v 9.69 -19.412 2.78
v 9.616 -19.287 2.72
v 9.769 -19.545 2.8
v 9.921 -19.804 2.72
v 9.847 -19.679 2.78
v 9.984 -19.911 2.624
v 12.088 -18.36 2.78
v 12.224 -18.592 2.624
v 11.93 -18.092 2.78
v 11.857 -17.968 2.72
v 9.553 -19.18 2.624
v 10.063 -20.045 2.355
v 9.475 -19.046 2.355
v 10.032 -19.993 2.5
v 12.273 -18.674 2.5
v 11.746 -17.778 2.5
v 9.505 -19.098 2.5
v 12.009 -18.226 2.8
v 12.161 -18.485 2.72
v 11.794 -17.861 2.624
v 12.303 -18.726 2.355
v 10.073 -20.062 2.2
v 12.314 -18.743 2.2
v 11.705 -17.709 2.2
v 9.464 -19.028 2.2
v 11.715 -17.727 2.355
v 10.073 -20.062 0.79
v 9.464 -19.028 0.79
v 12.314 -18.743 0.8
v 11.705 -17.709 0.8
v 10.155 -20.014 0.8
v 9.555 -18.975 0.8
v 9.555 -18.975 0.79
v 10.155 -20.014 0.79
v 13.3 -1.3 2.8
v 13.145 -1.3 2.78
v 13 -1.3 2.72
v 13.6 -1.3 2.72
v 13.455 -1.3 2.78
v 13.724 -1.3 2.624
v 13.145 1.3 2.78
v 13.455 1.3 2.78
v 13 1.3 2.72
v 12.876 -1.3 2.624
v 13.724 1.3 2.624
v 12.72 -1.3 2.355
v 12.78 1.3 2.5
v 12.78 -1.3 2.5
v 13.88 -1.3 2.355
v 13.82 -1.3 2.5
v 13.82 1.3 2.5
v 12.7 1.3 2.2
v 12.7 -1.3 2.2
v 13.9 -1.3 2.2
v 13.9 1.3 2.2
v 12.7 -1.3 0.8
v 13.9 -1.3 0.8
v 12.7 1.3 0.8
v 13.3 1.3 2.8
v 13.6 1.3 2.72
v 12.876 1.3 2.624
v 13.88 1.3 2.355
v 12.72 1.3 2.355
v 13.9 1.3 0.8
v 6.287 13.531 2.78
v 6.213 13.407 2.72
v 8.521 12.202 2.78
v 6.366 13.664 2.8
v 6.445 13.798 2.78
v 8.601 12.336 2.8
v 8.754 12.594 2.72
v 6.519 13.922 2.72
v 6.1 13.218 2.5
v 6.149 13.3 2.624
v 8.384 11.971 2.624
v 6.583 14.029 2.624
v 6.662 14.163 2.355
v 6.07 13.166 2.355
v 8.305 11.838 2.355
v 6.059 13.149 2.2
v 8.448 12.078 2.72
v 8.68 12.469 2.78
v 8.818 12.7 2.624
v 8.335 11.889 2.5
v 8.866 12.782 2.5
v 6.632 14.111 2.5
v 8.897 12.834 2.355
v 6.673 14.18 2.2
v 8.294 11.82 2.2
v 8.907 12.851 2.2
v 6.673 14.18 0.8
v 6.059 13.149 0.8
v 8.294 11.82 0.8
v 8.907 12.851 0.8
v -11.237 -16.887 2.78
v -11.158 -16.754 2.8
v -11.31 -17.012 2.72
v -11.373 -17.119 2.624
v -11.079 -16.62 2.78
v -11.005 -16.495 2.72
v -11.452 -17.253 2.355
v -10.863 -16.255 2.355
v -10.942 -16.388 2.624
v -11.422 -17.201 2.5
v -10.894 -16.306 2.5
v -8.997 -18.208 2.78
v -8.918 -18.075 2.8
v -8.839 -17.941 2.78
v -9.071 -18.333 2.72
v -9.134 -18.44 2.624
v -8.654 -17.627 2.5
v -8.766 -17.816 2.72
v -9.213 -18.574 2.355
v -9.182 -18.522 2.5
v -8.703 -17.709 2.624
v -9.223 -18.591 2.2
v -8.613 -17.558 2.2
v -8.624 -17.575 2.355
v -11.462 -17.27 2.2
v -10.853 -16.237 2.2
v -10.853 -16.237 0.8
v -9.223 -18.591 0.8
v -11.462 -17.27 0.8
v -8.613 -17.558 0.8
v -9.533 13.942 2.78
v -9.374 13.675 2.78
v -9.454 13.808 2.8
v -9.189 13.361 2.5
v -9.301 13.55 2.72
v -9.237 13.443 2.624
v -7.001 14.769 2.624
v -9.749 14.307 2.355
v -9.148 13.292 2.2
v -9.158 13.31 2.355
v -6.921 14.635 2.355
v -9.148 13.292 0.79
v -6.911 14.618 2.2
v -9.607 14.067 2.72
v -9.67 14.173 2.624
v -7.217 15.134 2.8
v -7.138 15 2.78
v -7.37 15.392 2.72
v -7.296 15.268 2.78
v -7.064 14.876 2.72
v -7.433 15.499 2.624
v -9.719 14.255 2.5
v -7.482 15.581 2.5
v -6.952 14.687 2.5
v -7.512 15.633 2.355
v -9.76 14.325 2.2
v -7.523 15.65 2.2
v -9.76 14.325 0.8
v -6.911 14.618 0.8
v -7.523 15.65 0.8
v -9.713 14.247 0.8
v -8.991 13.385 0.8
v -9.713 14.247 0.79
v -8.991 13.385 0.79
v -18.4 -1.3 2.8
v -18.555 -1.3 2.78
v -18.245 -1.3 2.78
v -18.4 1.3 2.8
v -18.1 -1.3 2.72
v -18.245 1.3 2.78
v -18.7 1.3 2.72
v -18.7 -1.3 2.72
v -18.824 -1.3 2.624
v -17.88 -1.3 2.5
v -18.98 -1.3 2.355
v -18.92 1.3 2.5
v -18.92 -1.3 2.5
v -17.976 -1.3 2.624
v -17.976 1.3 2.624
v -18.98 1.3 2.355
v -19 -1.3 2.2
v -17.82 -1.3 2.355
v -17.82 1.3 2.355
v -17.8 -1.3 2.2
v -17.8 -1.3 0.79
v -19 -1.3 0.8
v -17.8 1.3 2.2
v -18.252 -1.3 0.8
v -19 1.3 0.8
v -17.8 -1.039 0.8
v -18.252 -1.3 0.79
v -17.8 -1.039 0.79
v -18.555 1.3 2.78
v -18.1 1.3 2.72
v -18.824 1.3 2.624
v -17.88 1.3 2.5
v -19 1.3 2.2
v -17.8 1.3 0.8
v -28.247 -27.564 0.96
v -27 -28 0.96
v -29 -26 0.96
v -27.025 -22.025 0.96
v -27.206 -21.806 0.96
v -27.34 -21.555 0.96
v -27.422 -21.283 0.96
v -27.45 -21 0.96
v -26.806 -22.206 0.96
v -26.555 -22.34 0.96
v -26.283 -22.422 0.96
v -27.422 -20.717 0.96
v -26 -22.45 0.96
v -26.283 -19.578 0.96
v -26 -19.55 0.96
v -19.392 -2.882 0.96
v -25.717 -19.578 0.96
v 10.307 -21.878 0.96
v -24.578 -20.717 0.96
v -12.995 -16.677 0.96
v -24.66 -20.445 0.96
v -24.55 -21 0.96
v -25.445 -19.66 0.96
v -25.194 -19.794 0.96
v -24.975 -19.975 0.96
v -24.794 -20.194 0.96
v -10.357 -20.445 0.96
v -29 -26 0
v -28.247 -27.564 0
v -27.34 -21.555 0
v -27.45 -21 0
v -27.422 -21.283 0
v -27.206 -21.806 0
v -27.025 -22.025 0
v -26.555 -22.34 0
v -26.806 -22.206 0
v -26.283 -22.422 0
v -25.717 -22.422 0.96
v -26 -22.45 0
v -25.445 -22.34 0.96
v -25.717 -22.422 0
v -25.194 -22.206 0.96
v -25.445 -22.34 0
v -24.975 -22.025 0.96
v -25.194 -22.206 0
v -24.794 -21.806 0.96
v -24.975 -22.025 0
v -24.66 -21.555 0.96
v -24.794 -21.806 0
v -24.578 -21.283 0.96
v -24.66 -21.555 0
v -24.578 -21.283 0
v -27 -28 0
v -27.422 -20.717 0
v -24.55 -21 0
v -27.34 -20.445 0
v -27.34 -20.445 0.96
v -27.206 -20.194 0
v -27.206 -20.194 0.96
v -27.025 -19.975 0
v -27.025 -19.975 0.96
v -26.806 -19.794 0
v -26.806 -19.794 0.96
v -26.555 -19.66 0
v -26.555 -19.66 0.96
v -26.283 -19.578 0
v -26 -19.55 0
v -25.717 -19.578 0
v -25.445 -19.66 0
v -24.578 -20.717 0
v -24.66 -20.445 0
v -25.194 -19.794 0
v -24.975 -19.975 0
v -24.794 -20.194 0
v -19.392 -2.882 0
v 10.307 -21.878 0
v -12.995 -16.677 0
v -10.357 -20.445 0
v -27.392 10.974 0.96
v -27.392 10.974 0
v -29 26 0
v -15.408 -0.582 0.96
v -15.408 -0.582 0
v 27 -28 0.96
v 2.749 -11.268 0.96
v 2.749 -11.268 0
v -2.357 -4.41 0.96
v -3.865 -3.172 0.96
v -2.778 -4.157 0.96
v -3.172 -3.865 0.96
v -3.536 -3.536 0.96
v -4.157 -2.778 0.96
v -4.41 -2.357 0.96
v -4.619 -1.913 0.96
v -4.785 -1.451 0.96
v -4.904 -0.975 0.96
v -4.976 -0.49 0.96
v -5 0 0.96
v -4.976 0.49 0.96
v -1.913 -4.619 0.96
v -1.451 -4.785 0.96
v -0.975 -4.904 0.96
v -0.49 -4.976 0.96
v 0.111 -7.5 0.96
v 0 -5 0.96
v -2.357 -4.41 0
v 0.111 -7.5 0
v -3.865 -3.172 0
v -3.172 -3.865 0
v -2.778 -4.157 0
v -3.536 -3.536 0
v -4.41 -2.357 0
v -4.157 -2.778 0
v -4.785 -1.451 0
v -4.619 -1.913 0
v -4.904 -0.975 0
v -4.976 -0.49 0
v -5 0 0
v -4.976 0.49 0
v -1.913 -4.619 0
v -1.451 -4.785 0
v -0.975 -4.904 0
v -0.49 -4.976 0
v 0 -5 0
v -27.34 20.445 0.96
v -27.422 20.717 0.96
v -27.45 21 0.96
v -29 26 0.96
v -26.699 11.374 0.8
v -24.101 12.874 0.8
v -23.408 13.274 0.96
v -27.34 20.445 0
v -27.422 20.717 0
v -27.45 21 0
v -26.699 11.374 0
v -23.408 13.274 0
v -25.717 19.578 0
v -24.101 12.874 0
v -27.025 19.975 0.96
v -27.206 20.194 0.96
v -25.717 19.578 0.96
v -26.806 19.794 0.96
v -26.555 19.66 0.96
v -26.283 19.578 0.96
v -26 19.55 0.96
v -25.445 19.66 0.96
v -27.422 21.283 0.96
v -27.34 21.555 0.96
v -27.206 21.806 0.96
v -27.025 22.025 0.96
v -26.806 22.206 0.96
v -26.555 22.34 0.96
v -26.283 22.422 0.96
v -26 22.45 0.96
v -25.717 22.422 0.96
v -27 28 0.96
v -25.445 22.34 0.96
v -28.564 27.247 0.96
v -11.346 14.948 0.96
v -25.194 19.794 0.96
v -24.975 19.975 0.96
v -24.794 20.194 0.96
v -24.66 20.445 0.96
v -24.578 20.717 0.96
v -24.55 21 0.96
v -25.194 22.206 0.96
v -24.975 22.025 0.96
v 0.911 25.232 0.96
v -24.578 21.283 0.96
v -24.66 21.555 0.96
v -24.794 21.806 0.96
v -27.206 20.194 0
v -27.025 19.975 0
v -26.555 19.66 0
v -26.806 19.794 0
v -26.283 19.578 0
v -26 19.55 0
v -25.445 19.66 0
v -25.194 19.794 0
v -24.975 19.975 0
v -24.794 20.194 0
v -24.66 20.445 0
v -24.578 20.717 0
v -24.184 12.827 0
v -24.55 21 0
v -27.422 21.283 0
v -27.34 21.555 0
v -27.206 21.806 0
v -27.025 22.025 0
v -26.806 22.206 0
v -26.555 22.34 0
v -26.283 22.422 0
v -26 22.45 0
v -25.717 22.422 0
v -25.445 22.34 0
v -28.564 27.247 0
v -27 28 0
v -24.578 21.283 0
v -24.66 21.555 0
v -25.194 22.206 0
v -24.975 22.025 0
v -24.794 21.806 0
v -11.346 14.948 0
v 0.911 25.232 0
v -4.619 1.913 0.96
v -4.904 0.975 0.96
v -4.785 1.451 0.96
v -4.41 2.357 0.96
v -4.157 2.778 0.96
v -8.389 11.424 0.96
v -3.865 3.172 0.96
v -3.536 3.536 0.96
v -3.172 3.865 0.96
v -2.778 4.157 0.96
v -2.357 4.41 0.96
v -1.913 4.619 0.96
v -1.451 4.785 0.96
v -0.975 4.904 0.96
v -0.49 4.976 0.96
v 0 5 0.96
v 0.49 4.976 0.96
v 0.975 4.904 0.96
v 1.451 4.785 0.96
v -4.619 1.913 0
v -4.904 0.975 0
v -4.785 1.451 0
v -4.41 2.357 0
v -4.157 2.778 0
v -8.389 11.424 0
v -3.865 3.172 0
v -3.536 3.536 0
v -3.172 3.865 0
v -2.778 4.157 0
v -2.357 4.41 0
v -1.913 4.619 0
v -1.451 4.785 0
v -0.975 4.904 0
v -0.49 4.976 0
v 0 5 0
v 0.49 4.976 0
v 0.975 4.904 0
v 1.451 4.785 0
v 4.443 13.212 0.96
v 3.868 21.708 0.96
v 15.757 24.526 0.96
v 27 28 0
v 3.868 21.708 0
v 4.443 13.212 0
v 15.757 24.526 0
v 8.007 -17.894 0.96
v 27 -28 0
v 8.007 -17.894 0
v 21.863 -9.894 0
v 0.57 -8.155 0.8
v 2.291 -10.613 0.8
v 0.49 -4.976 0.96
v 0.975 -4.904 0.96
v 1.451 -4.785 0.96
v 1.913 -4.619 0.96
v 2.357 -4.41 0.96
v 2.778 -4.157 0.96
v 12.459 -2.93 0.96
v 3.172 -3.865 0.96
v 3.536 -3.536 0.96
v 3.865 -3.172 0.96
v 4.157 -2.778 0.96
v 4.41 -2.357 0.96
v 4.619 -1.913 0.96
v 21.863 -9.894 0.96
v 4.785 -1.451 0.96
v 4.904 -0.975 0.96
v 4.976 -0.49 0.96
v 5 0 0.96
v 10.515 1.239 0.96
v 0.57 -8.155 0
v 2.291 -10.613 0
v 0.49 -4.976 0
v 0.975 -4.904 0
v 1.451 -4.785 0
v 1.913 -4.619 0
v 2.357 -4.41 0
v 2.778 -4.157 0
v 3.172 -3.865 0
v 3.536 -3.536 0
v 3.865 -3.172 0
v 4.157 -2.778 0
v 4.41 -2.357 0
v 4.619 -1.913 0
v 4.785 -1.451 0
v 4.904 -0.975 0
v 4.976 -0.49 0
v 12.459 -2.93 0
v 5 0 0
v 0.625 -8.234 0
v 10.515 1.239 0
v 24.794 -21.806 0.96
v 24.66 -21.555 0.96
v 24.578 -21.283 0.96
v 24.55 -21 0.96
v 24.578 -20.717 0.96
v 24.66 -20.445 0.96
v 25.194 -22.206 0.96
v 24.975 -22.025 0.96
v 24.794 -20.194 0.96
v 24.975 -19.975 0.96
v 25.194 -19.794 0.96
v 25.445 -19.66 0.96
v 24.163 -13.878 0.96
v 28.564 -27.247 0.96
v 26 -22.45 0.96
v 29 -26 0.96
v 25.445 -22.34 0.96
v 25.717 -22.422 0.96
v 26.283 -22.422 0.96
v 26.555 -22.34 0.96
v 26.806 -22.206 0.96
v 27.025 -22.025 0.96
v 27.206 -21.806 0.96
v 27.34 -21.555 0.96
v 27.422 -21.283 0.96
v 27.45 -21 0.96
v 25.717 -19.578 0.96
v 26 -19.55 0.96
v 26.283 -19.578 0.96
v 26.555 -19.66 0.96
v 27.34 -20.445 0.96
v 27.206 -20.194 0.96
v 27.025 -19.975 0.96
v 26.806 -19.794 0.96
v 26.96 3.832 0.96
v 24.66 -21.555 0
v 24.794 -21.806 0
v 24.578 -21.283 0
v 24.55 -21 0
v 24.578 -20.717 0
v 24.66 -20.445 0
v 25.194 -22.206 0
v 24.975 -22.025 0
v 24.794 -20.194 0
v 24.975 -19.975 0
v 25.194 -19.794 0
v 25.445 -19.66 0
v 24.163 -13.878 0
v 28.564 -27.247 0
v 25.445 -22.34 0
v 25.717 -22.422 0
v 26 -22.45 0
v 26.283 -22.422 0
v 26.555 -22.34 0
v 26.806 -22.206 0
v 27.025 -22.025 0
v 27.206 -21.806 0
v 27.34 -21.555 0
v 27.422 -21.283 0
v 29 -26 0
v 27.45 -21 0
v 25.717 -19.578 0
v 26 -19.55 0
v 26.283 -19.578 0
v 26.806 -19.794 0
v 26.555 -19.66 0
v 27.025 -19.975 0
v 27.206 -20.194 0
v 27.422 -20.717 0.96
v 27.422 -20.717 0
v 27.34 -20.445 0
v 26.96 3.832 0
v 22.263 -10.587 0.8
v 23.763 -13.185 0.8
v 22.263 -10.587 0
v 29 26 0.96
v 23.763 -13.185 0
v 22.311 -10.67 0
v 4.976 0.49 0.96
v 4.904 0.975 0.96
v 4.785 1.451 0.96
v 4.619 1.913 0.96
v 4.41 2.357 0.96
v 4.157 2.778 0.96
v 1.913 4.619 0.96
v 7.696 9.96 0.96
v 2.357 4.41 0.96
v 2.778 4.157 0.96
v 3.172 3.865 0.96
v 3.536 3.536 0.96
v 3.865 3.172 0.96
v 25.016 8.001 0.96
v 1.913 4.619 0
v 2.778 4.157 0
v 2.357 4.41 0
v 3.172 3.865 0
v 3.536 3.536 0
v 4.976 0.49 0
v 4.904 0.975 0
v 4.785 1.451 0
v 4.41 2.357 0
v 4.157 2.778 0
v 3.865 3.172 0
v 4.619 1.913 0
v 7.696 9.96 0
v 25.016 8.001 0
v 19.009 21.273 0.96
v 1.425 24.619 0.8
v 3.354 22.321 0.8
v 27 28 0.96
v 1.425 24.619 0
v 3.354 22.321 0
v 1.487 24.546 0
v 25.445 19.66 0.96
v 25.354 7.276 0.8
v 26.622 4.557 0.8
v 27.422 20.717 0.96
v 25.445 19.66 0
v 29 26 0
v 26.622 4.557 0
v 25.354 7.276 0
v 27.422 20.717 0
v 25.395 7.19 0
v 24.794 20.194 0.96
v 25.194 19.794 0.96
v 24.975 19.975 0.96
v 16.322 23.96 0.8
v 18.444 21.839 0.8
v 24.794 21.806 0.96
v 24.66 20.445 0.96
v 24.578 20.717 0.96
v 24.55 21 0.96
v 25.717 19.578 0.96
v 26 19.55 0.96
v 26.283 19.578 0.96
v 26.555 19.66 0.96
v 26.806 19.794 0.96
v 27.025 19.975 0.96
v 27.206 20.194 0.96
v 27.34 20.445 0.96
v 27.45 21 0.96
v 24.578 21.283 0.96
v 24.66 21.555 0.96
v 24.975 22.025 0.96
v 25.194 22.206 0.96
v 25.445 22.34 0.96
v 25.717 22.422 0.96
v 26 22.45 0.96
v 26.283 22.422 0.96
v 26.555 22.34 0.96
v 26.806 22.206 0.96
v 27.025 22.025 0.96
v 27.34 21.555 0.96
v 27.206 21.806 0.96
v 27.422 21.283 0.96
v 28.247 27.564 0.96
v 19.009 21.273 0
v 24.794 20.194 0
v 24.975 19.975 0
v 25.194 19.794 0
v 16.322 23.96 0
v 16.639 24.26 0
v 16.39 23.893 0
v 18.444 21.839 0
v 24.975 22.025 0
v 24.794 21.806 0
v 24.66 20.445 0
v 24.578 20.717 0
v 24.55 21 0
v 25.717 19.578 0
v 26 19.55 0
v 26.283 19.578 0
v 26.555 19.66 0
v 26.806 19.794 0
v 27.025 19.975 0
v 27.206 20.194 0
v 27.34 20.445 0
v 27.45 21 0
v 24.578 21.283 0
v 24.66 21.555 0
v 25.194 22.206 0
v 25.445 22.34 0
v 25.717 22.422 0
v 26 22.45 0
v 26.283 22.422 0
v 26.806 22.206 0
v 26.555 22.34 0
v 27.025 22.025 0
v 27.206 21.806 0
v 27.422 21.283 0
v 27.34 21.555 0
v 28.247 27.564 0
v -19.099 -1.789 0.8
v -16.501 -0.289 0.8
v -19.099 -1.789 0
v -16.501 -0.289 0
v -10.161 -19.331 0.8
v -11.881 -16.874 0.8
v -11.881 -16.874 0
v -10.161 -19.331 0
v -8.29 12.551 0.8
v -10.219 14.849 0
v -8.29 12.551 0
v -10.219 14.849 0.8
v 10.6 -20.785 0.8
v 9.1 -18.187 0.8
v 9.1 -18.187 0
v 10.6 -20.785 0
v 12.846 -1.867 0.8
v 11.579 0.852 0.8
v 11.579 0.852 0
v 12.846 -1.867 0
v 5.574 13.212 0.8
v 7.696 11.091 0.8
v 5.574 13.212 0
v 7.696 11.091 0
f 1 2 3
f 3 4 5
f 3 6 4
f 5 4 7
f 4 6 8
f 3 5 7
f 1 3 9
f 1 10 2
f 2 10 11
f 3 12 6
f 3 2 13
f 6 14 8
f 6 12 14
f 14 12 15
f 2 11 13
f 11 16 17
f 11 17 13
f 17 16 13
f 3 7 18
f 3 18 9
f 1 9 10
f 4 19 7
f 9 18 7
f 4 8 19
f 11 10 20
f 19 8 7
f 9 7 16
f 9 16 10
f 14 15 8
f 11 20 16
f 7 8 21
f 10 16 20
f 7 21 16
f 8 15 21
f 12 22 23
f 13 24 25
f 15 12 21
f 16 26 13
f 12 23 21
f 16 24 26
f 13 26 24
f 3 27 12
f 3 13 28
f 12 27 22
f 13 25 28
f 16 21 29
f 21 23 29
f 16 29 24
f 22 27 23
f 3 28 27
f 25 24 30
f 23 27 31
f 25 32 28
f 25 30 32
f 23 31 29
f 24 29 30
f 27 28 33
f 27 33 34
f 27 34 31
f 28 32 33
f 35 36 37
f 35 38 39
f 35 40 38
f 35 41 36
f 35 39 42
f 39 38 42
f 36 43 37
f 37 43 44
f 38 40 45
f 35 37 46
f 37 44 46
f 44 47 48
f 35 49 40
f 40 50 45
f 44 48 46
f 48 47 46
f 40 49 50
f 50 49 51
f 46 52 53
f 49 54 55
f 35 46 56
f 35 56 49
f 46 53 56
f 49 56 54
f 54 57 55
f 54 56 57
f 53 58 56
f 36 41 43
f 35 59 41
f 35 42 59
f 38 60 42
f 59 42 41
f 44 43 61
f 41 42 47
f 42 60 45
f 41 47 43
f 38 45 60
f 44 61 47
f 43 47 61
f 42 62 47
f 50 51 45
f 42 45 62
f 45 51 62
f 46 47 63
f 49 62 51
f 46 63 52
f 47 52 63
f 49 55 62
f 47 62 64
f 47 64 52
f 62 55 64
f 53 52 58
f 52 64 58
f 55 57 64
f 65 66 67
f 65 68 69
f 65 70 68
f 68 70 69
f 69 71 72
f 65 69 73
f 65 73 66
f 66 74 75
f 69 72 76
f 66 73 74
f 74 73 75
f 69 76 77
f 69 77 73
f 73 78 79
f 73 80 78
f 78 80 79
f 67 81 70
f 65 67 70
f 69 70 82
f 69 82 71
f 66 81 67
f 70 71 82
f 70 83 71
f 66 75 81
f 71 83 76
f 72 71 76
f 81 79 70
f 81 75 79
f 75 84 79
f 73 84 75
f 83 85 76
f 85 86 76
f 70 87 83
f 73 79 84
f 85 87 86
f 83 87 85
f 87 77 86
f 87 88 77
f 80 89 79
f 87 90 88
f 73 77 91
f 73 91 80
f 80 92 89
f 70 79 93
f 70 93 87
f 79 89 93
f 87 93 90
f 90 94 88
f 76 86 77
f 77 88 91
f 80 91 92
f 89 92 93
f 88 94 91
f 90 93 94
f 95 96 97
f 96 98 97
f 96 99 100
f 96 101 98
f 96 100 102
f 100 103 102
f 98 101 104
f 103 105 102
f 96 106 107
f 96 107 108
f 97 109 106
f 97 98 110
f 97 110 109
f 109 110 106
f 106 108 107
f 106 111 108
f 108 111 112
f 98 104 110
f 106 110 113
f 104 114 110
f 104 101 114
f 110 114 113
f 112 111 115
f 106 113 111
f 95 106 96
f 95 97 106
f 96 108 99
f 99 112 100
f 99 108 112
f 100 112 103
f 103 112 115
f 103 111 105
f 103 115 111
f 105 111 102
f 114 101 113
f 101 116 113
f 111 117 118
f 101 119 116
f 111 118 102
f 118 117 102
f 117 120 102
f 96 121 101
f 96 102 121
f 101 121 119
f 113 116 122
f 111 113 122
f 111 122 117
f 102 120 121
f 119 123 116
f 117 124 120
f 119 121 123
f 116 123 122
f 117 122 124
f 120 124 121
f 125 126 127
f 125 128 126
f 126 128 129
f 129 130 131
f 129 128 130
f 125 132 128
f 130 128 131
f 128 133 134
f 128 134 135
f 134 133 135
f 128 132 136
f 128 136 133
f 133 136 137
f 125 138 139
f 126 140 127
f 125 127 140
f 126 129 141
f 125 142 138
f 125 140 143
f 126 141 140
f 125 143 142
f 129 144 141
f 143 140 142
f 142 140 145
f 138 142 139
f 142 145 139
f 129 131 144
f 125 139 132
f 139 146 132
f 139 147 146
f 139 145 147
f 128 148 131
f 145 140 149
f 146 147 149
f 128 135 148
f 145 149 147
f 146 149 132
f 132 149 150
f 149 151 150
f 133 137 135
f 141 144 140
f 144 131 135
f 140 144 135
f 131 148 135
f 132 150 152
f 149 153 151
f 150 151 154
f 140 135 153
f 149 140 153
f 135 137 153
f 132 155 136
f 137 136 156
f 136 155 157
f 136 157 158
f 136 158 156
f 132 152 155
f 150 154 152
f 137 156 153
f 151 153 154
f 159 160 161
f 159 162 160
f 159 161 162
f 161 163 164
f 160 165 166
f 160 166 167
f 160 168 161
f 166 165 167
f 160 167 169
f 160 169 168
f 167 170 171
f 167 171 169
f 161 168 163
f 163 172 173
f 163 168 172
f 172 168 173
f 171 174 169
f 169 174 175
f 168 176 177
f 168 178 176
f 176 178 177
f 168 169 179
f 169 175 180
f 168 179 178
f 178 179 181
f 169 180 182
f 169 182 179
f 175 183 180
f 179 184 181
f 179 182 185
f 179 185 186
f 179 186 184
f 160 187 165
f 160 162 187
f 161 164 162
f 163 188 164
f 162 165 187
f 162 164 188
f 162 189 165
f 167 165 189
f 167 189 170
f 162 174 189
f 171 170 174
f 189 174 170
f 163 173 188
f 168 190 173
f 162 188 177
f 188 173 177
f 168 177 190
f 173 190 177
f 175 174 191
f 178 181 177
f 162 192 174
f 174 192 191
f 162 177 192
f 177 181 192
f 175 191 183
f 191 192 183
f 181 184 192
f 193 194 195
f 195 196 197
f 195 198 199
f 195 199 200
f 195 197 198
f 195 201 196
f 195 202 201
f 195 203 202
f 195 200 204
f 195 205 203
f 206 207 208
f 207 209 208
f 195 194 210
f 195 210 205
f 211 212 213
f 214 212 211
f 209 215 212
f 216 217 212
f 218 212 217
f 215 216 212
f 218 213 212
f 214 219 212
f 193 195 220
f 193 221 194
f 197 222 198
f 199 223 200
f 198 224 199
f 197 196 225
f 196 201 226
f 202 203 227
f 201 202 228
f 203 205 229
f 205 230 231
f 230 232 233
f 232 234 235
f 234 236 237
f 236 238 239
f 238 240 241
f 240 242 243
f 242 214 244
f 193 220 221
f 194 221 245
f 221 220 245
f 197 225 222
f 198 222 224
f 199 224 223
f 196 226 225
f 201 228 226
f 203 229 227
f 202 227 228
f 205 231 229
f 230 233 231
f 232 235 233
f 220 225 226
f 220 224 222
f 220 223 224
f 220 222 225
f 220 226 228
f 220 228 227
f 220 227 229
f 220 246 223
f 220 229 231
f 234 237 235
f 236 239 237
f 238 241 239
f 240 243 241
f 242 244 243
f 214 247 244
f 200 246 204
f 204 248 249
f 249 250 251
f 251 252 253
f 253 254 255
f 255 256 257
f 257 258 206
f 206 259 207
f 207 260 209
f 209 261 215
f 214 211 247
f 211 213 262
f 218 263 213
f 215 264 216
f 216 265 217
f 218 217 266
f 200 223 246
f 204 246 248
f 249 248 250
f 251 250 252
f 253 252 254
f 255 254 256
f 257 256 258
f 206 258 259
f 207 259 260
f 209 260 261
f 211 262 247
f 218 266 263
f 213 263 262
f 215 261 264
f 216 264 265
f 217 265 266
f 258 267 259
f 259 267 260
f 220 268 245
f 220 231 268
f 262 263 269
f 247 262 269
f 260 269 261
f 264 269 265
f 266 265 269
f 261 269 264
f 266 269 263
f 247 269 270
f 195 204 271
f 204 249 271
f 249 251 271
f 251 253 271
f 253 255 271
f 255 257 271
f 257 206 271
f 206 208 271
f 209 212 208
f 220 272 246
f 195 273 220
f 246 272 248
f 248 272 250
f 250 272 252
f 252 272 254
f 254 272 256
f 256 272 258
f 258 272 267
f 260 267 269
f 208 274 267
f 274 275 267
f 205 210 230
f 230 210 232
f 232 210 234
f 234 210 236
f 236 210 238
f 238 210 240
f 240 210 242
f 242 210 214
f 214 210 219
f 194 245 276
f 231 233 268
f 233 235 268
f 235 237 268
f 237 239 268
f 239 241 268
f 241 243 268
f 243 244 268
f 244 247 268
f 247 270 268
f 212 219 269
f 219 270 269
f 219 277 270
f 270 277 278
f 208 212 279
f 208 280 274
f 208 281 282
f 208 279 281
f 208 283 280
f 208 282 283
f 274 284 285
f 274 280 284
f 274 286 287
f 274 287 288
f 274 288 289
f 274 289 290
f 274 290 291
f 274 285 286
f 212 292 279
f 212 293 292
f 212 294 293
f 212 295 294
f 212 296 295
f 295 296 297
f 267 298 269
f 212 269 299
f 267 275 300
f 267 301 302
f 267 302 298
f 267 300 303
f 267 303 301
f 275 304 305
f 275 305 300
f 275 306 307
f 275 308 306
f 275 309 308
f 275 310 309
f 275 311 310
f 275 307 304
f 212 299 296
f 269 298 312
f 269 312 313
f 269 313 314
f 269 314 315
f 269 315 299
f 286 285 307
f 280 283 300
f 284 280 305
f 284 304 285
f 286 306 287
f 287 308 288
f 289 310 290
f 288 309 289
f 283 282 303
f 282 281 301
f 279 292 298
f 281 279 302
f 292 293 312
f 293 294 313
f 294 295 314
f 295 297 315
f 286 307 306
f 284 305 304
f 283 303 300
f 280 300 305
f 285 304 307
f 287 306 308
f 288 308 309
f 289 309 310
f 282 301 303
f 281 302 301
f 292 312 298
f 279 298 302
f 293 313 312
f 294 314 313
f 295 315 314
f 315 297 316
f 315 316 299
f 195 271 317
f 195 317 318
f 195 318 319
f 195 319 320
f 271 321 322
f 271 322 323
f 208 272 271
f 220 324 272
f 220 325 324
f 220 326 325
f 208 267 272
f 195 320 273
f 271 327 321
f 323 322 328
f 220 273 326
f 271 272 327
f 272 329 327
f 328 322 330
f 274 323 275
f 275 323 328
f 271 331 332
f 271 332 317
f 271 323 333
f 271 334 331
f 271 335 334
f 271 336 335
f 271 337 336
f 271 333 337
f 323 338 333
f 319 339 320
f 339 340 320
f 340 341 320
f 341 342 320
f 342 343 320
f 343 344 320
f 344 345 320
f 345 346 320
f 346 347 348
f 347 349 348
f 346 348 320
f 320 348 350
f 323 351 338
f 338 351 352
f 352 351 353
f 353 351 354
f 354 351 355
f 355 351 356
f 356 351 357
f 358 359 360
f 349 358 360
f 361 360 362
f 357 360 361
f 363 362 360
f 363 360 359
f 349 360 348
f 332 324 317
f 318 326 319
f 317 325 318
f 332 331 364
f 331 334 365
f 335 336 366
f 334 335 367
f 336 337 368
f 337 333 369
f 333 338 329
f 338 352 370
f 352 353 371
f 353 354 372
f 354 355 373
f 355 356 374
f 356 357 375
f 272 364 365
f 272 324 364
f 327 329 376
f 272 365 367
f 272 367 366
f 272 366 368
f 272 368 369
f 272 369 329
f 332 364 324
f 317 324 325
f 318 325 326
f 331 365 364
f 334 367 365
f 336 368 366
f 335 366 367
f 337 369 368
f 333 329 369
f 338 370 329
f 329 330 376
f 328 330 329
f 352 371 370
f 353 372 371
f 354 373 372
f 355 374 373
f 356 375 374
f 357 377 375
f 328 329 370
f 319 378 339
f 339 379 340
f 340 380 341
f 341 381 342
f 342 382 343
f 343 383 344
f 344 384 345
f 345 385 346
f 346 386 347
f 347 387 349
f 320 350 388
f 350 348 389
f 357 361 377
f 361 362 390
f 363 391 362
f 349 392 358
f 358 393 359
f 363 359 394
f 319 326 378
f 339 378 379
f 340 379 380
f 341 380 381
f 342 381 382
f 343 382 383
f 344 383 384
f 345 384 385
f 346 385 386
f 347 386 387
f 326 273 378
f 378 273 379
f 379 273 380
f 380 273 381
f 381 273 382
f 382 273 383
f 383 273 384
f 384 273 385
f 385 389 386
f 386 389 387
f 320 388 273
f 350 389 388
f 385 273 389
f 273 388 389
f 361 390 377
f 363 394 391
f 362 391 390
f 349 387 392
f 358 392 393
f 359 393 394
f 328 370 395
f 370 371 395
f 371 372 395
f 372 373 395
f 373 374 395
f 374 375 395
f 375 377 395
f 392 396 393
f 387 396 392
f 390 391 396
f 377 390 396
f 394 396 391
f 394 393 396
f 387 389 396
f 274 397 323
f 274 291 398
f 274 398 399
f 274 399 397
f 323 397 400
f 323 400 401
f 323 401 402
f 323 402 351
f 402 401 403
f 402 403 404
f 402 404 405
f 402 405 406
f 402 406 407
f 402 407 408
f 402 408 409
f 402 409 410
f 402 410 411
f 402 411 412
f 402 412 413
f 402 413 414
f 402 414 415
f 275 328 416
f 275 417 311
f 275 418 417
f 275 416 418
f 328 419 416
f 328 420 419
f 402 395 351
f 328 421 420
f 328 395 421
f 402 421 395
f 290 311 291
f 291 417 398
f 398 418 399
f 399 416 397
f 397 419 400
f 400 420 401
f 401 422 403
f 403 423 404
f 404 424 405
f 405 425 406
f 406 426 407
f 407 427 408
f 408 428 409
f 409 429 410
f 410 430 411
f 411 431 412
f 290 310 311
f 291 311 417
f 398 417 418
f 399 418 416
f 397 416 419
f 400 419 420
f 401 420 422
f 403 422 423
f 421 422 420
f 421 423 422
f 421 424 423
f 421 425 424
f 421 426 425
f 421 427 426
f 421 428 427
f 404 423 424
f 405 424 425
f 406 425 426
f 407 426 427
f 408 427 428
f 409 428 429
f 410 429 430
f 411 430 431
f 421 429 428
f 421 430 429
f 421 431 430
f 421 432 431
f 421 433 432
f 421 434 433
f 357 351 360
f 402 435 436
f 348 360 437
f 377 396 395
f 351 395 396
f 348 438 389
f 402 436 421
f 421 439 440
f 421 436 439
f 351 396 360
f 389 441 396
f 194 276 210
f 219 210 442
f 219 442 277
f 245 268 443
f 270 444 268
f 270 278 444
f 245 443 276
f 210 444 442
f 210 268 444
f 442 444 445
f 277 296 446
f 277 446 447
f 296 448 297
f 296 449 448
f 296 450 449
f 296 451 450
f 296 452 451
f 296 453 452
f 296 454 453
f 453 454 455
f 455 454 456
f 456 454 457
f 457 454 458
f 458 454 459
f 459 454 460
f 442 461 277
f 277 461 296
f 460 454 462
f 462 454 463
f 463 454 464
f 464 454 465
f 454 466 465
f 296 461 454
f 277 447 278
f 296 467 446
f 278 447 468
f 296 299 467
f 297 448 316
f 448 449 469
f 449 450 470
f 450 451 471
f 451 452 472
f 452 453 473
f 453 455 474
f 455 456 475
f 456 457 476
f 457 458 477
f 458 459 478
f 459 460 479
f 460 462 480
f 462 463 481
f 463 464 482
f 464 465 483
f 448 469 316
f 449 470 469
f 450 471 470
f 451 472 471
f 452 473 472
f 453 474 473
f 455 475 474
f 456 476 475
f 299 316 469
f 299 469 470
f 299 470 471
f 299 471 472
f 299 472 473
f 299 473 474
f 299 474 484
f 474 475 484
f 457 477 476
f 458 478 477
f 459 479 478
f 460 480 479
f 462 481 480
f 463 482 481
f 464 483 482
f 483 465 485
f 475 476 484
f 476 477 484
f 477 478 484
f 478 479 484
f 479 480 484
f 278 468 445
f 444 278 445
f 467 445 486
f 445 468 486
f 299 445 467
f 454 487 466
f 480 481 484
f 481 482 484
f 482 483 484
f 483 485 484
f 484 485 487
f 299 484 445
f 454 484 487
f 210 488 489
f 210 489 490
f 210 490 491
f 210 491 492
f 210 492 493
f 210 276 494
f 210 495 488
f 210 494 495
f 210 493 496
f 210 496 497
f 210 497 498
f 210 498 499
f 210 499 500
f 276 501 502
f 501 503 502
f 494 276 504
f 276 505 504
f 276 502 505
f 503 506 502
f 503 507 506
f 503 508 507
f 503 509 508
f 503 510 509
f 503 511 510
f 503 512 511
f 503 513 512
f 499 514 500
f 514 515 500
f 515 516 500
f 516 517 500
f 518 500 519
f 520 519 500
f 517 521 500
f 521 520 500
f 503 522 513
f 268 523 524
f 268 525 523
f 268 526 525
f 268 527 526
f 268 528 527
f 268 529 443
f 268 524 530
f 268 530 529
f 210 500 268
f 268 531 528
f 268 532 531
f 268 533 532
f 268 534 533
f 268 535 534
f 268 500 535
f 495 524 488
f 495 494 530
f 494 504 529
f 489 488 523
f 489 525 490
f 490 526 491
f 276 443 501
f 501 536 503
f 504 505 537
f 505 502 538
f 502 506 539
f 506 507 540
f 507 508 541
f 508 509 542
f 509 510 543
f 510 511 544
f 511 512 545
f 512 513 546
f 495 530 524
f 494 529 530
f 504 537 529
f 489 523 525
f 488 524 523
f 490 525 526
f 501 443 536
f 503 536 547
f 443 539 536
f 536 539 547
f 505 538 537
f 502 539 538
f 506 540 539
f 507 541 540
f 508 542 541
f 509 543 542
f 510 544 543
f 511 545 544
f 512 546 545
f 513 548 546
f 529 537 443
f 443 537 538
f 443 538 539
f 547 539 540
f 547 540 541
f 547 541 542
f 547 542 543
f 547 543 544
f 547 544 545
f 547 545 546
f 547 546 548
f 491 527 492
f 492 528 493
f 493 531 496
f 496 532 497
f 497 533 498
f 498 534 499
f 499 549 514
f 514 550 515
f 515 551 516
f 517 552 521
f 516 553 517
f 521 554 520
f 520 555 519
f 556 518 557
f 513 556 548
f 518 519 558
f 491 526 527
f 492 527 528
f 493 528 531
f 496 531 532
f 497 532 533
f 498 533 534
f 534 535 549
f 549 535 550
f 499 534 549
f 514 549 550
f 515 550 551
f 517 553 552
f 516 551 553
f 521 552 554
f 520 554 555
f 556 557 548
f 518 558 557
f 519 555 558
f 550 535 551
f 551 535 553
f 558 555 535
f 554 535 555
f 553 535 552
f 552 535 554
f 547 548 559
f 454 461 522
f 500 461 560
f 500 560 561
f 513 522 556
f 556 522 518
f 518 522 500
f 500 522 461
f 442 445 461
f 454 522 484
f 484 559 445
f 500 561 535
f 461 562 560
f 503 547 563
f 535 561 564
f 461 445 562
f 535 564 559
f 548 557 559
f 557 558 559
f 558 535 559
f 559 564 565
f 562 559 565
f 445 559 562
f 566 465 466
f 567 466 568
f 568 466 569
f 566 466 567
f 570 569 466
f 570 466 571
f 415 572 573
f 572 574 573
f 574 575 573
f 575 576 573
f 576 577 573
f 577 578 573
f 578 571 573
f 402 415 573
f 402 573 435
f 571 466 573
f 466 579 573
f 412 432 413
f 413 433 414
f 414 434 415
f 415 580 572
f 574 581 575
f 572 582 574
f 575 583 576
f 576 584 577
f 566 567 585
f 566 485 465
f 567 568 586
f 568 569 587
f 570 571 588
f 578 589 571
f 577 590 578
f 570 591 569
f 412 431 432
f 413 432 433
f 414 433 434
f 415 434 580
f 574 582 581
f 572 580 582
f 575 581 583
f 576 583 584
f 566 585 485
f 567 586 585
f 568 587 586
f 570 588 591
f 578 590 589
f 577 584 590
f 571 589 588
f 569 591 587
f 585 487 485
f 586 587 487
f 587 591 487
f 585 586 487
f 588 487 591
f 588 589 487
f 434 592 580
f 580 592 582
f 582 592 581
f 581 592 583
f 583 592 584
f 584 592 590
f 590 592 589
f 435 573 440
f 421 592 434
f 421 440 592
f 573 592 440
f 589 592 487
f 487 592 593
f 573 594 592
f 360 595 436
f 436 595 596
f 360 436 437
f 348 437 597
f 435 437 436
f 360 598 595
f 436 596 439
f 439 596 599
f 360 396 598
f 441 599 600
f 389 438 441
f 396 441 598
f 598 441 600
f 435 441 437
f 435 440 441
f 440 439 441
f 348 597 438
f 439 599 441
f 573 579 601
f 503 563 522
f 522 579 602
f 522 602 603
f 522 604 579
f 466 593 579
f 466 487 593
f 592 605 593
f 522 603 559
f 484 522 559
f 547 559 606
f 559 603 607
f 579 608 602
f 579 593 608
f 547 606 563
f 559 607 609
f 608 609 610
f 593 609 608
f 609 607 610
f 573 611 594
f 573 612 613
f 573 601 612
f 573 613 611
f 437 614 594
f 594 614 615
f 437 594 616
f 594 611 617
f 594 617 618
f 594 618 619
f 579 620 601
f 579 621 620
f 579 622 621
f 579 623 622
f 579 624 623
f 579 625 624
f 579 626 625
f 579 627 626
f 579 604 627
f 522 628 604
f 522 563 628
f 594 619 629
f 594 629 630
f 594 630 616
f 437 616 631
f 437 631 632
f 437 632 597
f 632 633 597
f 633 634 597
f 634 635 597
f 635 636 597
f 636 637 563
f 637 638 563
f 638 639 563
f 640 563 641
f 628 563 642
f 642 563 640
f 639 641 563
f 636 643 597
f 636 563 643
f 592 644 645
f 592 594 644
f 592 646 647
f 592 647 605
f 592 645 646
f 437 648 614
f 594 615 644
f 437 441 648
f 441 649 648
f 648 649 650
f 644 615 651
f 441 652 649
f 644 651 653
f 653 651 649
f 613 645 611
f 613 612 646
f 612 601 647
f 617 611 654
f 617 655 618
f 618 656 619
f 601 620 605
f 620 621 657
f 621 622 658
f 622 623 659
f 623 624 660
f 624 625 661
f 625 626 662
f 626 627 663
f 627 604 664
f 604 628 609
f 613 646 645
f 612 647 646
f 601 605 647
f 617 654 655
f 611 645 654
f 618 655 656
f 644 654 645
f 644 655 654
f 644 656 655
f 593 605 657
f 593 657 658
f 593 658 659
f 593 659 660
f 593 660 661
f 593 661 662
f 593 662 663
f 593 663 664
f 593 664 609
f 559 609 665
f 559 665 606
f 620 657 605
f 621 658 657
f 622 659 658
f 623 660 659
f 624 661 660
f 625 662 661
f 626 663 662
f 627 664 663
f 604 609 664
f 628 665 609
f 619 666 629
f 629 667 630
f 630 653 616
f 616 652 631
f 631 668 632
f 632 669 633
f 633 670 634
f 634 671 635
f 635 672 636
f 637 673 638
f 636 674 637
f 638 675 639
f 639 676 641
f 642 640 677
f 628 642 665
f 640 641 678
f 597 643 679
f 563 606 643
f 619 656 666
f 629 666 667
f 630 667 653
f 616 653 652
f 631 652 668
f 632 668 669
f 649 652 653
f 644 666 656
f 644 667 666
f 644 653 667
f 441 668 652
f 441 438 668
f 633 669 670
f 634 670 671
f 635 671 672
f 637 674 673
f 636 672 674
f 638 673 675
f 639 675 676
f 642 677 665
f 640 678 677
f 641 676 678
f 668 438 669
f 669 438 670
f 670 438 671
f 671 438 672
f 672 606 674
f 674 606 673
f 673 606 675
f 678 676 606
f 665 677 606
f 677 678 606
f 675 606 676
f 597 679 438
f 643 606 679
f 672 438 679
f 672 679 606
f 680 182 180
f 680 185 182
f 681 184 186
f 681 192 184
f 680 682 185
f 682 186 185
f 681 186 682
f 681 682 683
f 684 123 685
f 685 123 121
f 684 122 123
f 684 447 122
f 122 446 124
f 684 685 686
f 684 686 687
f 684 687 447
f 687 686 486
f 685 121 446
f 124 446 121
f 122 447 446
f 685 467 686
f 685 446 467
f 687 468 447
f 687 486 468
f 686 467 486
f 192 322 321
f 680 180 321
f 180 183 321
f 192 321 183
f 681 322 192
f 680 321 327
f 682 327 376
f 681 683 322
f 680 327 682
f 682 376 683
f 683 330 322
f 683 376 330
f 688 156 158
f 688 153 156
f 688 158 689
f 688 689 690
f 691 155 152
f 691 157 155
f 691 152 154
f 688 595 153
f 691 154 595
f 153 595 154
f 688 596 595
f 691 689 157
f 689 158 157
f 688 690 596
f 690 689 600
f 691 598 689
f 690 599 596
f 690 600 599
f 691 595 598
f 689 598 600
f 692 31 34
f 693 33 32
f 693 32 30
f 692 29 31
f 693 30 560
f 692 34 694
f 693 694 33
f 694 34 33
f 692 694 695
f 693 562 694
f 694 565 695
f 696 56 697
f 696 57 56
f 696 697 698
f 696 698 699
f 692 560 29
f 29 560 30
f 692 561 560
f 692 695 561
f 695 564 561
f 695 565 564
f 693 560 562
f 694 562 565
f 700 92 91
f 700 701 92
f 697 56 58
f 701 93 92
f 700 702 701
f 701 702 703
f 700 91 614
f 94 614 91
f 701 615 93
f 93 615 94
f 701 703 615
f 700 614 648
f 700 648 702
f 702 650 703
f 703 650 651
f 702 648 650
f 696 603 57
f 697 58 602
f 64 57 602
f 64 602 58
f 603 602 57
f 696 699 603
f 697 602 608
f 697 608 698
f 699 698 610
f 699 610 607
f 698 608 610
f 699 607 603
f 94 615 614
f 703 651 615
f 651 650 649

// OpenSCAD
// file: stack_options.scad
// =========================================================
// BRAILLIX COORDINATED STACK OPTIONS
//
// Default exports remain the audited legacy stack. Render the non-destructive
// shaft-preserving candidate with:
//
//   openscad -D stack_repair_raise=4 ...
//
// The 4 mm value is not arbitrary. With the motor mounting face at world z=41,
// the measured Ø9 x 2 mm collar ends at z=43. A 4 mm cam hub seated on that
// collar puts the cam underside at z=47 and its flat surface at z=49: exactly
// 4 mm above the legacy cam-flat datum. Base standoffs, top plate, cell shell,
// and pod therefore move together by the same amount.
//
// This is a candidate until the real cam/linkage/spring and Hall tests pass.
// =========================================================

stack_repair_raise = is_undef(stack_repair_raise) ? 0 : stack_repair_raise;

assert(stack_repair_raise == 0 || stack_repair_raise == 4,
       "stack_repair_raise must be 0 (legacy audit) or 4 (Option A candidate)");

stack_option_a = stack_repair_raise == 4;
// main file
// Printed return-spring sheet. See the finger_* block in mech_layout.scad.
// Built in the assembled frame: the sheet top touches the top-plate underside.
// print_finger_sheet() lays it flat for the printer, ridges up.
include <mech_layout.scad>

ridge_len = 2.6;     // across the beam; the beam is link_thickness wide
ridge_w   = 1.2;     // along the beam
ridge_r   = 0.6;     // rounded contact edge

function tg_a(d) = (dot_pos(d) - foot_pos(d)) / norm(dot_pos(d) - foot_pos(d));

module strip2d(d, back, fwd, w) {
    t = finger_tip(d); u = finger_axis(d); n = [-u[1], u[0]] * w / 2;
    p0 = t - u * back; p1 = t + u * fwd;
    polygon([p0 + n, p1 + n, p1 - n, p0 - n]);
}
module tongue2d(d) strip2d(d, ridge_w, finger_len + 0.5, finger_w);   // root runs 0.5 into the frame
module slot2d(d)   strip2d(d, ridge_w + finger_slot, finger_len, finger_w + 2 * finger_slot);

module frame2d() {
    difference() {
        offset(r = 2) offset(delta = -2) square([base_length, base_width], center = true);
        circle(r = 5.0, $fn = 64);                                    // the dot cluster
        for (sx = [-1, 1], sy = [-1, 1])
            translate([sx * standoff_x, sy * standoff_y]) circle(d = 2.9, $fn = 32);
        for (d = [1:6]) slot2d(d);
    }
}

module ridge(d) {
    t = finger_tip(d); a = tg_a(d);
    z_top = plate_under_z - finger_t;
    z_bot = beam_top_z - finger_preload;
    translate([t[0], t[1], 0])
        rotate([0, 0, atan2(a[1], a[0])])          // local x = along the beam
            hull() {
                translate([-ridge_w / 2, -ridge_len / 2, z_top - 0.01])
                    cube([ridge_w, ridge_len, 0.02]);
                translate([0, 0, z_bot + ridge_r])
                    rotate([90, 0, 0]) cylinder(r = ridge_r, h = ridge_len, center = true, $fn = 24);
            }
}

module finger_sheet() {
    translate([0, 0, plate_under_z - finger_frame_t])
        linear_extrude(finger_frame_t) frame2d();
    translate([0, 0, plate_under_z - finger_t])
        linear_extrude(finger_t) for (d = [1:6]) tongue2d(d);
    for (d = [1:6]) ridge(d);
}

// Footprint used by the top plate to cut the relief pockets.
module finger_relief2d(grow = 0.5) offset(r = grow) for (d = [1:6]) strip2d(d, ridge_w, finger_len, finger_w);

module print_finger_sheet() {
    translate([0, 0, plate_under_z]) mirror([0, 0, 1]) finger_sheet();
}

assert(beam_top_z - finger_preload + ridge_r * 2 < plate_under_z - finger_t,
       "ridge is shorter than its own rounded tip");

print_finger_sheet();
